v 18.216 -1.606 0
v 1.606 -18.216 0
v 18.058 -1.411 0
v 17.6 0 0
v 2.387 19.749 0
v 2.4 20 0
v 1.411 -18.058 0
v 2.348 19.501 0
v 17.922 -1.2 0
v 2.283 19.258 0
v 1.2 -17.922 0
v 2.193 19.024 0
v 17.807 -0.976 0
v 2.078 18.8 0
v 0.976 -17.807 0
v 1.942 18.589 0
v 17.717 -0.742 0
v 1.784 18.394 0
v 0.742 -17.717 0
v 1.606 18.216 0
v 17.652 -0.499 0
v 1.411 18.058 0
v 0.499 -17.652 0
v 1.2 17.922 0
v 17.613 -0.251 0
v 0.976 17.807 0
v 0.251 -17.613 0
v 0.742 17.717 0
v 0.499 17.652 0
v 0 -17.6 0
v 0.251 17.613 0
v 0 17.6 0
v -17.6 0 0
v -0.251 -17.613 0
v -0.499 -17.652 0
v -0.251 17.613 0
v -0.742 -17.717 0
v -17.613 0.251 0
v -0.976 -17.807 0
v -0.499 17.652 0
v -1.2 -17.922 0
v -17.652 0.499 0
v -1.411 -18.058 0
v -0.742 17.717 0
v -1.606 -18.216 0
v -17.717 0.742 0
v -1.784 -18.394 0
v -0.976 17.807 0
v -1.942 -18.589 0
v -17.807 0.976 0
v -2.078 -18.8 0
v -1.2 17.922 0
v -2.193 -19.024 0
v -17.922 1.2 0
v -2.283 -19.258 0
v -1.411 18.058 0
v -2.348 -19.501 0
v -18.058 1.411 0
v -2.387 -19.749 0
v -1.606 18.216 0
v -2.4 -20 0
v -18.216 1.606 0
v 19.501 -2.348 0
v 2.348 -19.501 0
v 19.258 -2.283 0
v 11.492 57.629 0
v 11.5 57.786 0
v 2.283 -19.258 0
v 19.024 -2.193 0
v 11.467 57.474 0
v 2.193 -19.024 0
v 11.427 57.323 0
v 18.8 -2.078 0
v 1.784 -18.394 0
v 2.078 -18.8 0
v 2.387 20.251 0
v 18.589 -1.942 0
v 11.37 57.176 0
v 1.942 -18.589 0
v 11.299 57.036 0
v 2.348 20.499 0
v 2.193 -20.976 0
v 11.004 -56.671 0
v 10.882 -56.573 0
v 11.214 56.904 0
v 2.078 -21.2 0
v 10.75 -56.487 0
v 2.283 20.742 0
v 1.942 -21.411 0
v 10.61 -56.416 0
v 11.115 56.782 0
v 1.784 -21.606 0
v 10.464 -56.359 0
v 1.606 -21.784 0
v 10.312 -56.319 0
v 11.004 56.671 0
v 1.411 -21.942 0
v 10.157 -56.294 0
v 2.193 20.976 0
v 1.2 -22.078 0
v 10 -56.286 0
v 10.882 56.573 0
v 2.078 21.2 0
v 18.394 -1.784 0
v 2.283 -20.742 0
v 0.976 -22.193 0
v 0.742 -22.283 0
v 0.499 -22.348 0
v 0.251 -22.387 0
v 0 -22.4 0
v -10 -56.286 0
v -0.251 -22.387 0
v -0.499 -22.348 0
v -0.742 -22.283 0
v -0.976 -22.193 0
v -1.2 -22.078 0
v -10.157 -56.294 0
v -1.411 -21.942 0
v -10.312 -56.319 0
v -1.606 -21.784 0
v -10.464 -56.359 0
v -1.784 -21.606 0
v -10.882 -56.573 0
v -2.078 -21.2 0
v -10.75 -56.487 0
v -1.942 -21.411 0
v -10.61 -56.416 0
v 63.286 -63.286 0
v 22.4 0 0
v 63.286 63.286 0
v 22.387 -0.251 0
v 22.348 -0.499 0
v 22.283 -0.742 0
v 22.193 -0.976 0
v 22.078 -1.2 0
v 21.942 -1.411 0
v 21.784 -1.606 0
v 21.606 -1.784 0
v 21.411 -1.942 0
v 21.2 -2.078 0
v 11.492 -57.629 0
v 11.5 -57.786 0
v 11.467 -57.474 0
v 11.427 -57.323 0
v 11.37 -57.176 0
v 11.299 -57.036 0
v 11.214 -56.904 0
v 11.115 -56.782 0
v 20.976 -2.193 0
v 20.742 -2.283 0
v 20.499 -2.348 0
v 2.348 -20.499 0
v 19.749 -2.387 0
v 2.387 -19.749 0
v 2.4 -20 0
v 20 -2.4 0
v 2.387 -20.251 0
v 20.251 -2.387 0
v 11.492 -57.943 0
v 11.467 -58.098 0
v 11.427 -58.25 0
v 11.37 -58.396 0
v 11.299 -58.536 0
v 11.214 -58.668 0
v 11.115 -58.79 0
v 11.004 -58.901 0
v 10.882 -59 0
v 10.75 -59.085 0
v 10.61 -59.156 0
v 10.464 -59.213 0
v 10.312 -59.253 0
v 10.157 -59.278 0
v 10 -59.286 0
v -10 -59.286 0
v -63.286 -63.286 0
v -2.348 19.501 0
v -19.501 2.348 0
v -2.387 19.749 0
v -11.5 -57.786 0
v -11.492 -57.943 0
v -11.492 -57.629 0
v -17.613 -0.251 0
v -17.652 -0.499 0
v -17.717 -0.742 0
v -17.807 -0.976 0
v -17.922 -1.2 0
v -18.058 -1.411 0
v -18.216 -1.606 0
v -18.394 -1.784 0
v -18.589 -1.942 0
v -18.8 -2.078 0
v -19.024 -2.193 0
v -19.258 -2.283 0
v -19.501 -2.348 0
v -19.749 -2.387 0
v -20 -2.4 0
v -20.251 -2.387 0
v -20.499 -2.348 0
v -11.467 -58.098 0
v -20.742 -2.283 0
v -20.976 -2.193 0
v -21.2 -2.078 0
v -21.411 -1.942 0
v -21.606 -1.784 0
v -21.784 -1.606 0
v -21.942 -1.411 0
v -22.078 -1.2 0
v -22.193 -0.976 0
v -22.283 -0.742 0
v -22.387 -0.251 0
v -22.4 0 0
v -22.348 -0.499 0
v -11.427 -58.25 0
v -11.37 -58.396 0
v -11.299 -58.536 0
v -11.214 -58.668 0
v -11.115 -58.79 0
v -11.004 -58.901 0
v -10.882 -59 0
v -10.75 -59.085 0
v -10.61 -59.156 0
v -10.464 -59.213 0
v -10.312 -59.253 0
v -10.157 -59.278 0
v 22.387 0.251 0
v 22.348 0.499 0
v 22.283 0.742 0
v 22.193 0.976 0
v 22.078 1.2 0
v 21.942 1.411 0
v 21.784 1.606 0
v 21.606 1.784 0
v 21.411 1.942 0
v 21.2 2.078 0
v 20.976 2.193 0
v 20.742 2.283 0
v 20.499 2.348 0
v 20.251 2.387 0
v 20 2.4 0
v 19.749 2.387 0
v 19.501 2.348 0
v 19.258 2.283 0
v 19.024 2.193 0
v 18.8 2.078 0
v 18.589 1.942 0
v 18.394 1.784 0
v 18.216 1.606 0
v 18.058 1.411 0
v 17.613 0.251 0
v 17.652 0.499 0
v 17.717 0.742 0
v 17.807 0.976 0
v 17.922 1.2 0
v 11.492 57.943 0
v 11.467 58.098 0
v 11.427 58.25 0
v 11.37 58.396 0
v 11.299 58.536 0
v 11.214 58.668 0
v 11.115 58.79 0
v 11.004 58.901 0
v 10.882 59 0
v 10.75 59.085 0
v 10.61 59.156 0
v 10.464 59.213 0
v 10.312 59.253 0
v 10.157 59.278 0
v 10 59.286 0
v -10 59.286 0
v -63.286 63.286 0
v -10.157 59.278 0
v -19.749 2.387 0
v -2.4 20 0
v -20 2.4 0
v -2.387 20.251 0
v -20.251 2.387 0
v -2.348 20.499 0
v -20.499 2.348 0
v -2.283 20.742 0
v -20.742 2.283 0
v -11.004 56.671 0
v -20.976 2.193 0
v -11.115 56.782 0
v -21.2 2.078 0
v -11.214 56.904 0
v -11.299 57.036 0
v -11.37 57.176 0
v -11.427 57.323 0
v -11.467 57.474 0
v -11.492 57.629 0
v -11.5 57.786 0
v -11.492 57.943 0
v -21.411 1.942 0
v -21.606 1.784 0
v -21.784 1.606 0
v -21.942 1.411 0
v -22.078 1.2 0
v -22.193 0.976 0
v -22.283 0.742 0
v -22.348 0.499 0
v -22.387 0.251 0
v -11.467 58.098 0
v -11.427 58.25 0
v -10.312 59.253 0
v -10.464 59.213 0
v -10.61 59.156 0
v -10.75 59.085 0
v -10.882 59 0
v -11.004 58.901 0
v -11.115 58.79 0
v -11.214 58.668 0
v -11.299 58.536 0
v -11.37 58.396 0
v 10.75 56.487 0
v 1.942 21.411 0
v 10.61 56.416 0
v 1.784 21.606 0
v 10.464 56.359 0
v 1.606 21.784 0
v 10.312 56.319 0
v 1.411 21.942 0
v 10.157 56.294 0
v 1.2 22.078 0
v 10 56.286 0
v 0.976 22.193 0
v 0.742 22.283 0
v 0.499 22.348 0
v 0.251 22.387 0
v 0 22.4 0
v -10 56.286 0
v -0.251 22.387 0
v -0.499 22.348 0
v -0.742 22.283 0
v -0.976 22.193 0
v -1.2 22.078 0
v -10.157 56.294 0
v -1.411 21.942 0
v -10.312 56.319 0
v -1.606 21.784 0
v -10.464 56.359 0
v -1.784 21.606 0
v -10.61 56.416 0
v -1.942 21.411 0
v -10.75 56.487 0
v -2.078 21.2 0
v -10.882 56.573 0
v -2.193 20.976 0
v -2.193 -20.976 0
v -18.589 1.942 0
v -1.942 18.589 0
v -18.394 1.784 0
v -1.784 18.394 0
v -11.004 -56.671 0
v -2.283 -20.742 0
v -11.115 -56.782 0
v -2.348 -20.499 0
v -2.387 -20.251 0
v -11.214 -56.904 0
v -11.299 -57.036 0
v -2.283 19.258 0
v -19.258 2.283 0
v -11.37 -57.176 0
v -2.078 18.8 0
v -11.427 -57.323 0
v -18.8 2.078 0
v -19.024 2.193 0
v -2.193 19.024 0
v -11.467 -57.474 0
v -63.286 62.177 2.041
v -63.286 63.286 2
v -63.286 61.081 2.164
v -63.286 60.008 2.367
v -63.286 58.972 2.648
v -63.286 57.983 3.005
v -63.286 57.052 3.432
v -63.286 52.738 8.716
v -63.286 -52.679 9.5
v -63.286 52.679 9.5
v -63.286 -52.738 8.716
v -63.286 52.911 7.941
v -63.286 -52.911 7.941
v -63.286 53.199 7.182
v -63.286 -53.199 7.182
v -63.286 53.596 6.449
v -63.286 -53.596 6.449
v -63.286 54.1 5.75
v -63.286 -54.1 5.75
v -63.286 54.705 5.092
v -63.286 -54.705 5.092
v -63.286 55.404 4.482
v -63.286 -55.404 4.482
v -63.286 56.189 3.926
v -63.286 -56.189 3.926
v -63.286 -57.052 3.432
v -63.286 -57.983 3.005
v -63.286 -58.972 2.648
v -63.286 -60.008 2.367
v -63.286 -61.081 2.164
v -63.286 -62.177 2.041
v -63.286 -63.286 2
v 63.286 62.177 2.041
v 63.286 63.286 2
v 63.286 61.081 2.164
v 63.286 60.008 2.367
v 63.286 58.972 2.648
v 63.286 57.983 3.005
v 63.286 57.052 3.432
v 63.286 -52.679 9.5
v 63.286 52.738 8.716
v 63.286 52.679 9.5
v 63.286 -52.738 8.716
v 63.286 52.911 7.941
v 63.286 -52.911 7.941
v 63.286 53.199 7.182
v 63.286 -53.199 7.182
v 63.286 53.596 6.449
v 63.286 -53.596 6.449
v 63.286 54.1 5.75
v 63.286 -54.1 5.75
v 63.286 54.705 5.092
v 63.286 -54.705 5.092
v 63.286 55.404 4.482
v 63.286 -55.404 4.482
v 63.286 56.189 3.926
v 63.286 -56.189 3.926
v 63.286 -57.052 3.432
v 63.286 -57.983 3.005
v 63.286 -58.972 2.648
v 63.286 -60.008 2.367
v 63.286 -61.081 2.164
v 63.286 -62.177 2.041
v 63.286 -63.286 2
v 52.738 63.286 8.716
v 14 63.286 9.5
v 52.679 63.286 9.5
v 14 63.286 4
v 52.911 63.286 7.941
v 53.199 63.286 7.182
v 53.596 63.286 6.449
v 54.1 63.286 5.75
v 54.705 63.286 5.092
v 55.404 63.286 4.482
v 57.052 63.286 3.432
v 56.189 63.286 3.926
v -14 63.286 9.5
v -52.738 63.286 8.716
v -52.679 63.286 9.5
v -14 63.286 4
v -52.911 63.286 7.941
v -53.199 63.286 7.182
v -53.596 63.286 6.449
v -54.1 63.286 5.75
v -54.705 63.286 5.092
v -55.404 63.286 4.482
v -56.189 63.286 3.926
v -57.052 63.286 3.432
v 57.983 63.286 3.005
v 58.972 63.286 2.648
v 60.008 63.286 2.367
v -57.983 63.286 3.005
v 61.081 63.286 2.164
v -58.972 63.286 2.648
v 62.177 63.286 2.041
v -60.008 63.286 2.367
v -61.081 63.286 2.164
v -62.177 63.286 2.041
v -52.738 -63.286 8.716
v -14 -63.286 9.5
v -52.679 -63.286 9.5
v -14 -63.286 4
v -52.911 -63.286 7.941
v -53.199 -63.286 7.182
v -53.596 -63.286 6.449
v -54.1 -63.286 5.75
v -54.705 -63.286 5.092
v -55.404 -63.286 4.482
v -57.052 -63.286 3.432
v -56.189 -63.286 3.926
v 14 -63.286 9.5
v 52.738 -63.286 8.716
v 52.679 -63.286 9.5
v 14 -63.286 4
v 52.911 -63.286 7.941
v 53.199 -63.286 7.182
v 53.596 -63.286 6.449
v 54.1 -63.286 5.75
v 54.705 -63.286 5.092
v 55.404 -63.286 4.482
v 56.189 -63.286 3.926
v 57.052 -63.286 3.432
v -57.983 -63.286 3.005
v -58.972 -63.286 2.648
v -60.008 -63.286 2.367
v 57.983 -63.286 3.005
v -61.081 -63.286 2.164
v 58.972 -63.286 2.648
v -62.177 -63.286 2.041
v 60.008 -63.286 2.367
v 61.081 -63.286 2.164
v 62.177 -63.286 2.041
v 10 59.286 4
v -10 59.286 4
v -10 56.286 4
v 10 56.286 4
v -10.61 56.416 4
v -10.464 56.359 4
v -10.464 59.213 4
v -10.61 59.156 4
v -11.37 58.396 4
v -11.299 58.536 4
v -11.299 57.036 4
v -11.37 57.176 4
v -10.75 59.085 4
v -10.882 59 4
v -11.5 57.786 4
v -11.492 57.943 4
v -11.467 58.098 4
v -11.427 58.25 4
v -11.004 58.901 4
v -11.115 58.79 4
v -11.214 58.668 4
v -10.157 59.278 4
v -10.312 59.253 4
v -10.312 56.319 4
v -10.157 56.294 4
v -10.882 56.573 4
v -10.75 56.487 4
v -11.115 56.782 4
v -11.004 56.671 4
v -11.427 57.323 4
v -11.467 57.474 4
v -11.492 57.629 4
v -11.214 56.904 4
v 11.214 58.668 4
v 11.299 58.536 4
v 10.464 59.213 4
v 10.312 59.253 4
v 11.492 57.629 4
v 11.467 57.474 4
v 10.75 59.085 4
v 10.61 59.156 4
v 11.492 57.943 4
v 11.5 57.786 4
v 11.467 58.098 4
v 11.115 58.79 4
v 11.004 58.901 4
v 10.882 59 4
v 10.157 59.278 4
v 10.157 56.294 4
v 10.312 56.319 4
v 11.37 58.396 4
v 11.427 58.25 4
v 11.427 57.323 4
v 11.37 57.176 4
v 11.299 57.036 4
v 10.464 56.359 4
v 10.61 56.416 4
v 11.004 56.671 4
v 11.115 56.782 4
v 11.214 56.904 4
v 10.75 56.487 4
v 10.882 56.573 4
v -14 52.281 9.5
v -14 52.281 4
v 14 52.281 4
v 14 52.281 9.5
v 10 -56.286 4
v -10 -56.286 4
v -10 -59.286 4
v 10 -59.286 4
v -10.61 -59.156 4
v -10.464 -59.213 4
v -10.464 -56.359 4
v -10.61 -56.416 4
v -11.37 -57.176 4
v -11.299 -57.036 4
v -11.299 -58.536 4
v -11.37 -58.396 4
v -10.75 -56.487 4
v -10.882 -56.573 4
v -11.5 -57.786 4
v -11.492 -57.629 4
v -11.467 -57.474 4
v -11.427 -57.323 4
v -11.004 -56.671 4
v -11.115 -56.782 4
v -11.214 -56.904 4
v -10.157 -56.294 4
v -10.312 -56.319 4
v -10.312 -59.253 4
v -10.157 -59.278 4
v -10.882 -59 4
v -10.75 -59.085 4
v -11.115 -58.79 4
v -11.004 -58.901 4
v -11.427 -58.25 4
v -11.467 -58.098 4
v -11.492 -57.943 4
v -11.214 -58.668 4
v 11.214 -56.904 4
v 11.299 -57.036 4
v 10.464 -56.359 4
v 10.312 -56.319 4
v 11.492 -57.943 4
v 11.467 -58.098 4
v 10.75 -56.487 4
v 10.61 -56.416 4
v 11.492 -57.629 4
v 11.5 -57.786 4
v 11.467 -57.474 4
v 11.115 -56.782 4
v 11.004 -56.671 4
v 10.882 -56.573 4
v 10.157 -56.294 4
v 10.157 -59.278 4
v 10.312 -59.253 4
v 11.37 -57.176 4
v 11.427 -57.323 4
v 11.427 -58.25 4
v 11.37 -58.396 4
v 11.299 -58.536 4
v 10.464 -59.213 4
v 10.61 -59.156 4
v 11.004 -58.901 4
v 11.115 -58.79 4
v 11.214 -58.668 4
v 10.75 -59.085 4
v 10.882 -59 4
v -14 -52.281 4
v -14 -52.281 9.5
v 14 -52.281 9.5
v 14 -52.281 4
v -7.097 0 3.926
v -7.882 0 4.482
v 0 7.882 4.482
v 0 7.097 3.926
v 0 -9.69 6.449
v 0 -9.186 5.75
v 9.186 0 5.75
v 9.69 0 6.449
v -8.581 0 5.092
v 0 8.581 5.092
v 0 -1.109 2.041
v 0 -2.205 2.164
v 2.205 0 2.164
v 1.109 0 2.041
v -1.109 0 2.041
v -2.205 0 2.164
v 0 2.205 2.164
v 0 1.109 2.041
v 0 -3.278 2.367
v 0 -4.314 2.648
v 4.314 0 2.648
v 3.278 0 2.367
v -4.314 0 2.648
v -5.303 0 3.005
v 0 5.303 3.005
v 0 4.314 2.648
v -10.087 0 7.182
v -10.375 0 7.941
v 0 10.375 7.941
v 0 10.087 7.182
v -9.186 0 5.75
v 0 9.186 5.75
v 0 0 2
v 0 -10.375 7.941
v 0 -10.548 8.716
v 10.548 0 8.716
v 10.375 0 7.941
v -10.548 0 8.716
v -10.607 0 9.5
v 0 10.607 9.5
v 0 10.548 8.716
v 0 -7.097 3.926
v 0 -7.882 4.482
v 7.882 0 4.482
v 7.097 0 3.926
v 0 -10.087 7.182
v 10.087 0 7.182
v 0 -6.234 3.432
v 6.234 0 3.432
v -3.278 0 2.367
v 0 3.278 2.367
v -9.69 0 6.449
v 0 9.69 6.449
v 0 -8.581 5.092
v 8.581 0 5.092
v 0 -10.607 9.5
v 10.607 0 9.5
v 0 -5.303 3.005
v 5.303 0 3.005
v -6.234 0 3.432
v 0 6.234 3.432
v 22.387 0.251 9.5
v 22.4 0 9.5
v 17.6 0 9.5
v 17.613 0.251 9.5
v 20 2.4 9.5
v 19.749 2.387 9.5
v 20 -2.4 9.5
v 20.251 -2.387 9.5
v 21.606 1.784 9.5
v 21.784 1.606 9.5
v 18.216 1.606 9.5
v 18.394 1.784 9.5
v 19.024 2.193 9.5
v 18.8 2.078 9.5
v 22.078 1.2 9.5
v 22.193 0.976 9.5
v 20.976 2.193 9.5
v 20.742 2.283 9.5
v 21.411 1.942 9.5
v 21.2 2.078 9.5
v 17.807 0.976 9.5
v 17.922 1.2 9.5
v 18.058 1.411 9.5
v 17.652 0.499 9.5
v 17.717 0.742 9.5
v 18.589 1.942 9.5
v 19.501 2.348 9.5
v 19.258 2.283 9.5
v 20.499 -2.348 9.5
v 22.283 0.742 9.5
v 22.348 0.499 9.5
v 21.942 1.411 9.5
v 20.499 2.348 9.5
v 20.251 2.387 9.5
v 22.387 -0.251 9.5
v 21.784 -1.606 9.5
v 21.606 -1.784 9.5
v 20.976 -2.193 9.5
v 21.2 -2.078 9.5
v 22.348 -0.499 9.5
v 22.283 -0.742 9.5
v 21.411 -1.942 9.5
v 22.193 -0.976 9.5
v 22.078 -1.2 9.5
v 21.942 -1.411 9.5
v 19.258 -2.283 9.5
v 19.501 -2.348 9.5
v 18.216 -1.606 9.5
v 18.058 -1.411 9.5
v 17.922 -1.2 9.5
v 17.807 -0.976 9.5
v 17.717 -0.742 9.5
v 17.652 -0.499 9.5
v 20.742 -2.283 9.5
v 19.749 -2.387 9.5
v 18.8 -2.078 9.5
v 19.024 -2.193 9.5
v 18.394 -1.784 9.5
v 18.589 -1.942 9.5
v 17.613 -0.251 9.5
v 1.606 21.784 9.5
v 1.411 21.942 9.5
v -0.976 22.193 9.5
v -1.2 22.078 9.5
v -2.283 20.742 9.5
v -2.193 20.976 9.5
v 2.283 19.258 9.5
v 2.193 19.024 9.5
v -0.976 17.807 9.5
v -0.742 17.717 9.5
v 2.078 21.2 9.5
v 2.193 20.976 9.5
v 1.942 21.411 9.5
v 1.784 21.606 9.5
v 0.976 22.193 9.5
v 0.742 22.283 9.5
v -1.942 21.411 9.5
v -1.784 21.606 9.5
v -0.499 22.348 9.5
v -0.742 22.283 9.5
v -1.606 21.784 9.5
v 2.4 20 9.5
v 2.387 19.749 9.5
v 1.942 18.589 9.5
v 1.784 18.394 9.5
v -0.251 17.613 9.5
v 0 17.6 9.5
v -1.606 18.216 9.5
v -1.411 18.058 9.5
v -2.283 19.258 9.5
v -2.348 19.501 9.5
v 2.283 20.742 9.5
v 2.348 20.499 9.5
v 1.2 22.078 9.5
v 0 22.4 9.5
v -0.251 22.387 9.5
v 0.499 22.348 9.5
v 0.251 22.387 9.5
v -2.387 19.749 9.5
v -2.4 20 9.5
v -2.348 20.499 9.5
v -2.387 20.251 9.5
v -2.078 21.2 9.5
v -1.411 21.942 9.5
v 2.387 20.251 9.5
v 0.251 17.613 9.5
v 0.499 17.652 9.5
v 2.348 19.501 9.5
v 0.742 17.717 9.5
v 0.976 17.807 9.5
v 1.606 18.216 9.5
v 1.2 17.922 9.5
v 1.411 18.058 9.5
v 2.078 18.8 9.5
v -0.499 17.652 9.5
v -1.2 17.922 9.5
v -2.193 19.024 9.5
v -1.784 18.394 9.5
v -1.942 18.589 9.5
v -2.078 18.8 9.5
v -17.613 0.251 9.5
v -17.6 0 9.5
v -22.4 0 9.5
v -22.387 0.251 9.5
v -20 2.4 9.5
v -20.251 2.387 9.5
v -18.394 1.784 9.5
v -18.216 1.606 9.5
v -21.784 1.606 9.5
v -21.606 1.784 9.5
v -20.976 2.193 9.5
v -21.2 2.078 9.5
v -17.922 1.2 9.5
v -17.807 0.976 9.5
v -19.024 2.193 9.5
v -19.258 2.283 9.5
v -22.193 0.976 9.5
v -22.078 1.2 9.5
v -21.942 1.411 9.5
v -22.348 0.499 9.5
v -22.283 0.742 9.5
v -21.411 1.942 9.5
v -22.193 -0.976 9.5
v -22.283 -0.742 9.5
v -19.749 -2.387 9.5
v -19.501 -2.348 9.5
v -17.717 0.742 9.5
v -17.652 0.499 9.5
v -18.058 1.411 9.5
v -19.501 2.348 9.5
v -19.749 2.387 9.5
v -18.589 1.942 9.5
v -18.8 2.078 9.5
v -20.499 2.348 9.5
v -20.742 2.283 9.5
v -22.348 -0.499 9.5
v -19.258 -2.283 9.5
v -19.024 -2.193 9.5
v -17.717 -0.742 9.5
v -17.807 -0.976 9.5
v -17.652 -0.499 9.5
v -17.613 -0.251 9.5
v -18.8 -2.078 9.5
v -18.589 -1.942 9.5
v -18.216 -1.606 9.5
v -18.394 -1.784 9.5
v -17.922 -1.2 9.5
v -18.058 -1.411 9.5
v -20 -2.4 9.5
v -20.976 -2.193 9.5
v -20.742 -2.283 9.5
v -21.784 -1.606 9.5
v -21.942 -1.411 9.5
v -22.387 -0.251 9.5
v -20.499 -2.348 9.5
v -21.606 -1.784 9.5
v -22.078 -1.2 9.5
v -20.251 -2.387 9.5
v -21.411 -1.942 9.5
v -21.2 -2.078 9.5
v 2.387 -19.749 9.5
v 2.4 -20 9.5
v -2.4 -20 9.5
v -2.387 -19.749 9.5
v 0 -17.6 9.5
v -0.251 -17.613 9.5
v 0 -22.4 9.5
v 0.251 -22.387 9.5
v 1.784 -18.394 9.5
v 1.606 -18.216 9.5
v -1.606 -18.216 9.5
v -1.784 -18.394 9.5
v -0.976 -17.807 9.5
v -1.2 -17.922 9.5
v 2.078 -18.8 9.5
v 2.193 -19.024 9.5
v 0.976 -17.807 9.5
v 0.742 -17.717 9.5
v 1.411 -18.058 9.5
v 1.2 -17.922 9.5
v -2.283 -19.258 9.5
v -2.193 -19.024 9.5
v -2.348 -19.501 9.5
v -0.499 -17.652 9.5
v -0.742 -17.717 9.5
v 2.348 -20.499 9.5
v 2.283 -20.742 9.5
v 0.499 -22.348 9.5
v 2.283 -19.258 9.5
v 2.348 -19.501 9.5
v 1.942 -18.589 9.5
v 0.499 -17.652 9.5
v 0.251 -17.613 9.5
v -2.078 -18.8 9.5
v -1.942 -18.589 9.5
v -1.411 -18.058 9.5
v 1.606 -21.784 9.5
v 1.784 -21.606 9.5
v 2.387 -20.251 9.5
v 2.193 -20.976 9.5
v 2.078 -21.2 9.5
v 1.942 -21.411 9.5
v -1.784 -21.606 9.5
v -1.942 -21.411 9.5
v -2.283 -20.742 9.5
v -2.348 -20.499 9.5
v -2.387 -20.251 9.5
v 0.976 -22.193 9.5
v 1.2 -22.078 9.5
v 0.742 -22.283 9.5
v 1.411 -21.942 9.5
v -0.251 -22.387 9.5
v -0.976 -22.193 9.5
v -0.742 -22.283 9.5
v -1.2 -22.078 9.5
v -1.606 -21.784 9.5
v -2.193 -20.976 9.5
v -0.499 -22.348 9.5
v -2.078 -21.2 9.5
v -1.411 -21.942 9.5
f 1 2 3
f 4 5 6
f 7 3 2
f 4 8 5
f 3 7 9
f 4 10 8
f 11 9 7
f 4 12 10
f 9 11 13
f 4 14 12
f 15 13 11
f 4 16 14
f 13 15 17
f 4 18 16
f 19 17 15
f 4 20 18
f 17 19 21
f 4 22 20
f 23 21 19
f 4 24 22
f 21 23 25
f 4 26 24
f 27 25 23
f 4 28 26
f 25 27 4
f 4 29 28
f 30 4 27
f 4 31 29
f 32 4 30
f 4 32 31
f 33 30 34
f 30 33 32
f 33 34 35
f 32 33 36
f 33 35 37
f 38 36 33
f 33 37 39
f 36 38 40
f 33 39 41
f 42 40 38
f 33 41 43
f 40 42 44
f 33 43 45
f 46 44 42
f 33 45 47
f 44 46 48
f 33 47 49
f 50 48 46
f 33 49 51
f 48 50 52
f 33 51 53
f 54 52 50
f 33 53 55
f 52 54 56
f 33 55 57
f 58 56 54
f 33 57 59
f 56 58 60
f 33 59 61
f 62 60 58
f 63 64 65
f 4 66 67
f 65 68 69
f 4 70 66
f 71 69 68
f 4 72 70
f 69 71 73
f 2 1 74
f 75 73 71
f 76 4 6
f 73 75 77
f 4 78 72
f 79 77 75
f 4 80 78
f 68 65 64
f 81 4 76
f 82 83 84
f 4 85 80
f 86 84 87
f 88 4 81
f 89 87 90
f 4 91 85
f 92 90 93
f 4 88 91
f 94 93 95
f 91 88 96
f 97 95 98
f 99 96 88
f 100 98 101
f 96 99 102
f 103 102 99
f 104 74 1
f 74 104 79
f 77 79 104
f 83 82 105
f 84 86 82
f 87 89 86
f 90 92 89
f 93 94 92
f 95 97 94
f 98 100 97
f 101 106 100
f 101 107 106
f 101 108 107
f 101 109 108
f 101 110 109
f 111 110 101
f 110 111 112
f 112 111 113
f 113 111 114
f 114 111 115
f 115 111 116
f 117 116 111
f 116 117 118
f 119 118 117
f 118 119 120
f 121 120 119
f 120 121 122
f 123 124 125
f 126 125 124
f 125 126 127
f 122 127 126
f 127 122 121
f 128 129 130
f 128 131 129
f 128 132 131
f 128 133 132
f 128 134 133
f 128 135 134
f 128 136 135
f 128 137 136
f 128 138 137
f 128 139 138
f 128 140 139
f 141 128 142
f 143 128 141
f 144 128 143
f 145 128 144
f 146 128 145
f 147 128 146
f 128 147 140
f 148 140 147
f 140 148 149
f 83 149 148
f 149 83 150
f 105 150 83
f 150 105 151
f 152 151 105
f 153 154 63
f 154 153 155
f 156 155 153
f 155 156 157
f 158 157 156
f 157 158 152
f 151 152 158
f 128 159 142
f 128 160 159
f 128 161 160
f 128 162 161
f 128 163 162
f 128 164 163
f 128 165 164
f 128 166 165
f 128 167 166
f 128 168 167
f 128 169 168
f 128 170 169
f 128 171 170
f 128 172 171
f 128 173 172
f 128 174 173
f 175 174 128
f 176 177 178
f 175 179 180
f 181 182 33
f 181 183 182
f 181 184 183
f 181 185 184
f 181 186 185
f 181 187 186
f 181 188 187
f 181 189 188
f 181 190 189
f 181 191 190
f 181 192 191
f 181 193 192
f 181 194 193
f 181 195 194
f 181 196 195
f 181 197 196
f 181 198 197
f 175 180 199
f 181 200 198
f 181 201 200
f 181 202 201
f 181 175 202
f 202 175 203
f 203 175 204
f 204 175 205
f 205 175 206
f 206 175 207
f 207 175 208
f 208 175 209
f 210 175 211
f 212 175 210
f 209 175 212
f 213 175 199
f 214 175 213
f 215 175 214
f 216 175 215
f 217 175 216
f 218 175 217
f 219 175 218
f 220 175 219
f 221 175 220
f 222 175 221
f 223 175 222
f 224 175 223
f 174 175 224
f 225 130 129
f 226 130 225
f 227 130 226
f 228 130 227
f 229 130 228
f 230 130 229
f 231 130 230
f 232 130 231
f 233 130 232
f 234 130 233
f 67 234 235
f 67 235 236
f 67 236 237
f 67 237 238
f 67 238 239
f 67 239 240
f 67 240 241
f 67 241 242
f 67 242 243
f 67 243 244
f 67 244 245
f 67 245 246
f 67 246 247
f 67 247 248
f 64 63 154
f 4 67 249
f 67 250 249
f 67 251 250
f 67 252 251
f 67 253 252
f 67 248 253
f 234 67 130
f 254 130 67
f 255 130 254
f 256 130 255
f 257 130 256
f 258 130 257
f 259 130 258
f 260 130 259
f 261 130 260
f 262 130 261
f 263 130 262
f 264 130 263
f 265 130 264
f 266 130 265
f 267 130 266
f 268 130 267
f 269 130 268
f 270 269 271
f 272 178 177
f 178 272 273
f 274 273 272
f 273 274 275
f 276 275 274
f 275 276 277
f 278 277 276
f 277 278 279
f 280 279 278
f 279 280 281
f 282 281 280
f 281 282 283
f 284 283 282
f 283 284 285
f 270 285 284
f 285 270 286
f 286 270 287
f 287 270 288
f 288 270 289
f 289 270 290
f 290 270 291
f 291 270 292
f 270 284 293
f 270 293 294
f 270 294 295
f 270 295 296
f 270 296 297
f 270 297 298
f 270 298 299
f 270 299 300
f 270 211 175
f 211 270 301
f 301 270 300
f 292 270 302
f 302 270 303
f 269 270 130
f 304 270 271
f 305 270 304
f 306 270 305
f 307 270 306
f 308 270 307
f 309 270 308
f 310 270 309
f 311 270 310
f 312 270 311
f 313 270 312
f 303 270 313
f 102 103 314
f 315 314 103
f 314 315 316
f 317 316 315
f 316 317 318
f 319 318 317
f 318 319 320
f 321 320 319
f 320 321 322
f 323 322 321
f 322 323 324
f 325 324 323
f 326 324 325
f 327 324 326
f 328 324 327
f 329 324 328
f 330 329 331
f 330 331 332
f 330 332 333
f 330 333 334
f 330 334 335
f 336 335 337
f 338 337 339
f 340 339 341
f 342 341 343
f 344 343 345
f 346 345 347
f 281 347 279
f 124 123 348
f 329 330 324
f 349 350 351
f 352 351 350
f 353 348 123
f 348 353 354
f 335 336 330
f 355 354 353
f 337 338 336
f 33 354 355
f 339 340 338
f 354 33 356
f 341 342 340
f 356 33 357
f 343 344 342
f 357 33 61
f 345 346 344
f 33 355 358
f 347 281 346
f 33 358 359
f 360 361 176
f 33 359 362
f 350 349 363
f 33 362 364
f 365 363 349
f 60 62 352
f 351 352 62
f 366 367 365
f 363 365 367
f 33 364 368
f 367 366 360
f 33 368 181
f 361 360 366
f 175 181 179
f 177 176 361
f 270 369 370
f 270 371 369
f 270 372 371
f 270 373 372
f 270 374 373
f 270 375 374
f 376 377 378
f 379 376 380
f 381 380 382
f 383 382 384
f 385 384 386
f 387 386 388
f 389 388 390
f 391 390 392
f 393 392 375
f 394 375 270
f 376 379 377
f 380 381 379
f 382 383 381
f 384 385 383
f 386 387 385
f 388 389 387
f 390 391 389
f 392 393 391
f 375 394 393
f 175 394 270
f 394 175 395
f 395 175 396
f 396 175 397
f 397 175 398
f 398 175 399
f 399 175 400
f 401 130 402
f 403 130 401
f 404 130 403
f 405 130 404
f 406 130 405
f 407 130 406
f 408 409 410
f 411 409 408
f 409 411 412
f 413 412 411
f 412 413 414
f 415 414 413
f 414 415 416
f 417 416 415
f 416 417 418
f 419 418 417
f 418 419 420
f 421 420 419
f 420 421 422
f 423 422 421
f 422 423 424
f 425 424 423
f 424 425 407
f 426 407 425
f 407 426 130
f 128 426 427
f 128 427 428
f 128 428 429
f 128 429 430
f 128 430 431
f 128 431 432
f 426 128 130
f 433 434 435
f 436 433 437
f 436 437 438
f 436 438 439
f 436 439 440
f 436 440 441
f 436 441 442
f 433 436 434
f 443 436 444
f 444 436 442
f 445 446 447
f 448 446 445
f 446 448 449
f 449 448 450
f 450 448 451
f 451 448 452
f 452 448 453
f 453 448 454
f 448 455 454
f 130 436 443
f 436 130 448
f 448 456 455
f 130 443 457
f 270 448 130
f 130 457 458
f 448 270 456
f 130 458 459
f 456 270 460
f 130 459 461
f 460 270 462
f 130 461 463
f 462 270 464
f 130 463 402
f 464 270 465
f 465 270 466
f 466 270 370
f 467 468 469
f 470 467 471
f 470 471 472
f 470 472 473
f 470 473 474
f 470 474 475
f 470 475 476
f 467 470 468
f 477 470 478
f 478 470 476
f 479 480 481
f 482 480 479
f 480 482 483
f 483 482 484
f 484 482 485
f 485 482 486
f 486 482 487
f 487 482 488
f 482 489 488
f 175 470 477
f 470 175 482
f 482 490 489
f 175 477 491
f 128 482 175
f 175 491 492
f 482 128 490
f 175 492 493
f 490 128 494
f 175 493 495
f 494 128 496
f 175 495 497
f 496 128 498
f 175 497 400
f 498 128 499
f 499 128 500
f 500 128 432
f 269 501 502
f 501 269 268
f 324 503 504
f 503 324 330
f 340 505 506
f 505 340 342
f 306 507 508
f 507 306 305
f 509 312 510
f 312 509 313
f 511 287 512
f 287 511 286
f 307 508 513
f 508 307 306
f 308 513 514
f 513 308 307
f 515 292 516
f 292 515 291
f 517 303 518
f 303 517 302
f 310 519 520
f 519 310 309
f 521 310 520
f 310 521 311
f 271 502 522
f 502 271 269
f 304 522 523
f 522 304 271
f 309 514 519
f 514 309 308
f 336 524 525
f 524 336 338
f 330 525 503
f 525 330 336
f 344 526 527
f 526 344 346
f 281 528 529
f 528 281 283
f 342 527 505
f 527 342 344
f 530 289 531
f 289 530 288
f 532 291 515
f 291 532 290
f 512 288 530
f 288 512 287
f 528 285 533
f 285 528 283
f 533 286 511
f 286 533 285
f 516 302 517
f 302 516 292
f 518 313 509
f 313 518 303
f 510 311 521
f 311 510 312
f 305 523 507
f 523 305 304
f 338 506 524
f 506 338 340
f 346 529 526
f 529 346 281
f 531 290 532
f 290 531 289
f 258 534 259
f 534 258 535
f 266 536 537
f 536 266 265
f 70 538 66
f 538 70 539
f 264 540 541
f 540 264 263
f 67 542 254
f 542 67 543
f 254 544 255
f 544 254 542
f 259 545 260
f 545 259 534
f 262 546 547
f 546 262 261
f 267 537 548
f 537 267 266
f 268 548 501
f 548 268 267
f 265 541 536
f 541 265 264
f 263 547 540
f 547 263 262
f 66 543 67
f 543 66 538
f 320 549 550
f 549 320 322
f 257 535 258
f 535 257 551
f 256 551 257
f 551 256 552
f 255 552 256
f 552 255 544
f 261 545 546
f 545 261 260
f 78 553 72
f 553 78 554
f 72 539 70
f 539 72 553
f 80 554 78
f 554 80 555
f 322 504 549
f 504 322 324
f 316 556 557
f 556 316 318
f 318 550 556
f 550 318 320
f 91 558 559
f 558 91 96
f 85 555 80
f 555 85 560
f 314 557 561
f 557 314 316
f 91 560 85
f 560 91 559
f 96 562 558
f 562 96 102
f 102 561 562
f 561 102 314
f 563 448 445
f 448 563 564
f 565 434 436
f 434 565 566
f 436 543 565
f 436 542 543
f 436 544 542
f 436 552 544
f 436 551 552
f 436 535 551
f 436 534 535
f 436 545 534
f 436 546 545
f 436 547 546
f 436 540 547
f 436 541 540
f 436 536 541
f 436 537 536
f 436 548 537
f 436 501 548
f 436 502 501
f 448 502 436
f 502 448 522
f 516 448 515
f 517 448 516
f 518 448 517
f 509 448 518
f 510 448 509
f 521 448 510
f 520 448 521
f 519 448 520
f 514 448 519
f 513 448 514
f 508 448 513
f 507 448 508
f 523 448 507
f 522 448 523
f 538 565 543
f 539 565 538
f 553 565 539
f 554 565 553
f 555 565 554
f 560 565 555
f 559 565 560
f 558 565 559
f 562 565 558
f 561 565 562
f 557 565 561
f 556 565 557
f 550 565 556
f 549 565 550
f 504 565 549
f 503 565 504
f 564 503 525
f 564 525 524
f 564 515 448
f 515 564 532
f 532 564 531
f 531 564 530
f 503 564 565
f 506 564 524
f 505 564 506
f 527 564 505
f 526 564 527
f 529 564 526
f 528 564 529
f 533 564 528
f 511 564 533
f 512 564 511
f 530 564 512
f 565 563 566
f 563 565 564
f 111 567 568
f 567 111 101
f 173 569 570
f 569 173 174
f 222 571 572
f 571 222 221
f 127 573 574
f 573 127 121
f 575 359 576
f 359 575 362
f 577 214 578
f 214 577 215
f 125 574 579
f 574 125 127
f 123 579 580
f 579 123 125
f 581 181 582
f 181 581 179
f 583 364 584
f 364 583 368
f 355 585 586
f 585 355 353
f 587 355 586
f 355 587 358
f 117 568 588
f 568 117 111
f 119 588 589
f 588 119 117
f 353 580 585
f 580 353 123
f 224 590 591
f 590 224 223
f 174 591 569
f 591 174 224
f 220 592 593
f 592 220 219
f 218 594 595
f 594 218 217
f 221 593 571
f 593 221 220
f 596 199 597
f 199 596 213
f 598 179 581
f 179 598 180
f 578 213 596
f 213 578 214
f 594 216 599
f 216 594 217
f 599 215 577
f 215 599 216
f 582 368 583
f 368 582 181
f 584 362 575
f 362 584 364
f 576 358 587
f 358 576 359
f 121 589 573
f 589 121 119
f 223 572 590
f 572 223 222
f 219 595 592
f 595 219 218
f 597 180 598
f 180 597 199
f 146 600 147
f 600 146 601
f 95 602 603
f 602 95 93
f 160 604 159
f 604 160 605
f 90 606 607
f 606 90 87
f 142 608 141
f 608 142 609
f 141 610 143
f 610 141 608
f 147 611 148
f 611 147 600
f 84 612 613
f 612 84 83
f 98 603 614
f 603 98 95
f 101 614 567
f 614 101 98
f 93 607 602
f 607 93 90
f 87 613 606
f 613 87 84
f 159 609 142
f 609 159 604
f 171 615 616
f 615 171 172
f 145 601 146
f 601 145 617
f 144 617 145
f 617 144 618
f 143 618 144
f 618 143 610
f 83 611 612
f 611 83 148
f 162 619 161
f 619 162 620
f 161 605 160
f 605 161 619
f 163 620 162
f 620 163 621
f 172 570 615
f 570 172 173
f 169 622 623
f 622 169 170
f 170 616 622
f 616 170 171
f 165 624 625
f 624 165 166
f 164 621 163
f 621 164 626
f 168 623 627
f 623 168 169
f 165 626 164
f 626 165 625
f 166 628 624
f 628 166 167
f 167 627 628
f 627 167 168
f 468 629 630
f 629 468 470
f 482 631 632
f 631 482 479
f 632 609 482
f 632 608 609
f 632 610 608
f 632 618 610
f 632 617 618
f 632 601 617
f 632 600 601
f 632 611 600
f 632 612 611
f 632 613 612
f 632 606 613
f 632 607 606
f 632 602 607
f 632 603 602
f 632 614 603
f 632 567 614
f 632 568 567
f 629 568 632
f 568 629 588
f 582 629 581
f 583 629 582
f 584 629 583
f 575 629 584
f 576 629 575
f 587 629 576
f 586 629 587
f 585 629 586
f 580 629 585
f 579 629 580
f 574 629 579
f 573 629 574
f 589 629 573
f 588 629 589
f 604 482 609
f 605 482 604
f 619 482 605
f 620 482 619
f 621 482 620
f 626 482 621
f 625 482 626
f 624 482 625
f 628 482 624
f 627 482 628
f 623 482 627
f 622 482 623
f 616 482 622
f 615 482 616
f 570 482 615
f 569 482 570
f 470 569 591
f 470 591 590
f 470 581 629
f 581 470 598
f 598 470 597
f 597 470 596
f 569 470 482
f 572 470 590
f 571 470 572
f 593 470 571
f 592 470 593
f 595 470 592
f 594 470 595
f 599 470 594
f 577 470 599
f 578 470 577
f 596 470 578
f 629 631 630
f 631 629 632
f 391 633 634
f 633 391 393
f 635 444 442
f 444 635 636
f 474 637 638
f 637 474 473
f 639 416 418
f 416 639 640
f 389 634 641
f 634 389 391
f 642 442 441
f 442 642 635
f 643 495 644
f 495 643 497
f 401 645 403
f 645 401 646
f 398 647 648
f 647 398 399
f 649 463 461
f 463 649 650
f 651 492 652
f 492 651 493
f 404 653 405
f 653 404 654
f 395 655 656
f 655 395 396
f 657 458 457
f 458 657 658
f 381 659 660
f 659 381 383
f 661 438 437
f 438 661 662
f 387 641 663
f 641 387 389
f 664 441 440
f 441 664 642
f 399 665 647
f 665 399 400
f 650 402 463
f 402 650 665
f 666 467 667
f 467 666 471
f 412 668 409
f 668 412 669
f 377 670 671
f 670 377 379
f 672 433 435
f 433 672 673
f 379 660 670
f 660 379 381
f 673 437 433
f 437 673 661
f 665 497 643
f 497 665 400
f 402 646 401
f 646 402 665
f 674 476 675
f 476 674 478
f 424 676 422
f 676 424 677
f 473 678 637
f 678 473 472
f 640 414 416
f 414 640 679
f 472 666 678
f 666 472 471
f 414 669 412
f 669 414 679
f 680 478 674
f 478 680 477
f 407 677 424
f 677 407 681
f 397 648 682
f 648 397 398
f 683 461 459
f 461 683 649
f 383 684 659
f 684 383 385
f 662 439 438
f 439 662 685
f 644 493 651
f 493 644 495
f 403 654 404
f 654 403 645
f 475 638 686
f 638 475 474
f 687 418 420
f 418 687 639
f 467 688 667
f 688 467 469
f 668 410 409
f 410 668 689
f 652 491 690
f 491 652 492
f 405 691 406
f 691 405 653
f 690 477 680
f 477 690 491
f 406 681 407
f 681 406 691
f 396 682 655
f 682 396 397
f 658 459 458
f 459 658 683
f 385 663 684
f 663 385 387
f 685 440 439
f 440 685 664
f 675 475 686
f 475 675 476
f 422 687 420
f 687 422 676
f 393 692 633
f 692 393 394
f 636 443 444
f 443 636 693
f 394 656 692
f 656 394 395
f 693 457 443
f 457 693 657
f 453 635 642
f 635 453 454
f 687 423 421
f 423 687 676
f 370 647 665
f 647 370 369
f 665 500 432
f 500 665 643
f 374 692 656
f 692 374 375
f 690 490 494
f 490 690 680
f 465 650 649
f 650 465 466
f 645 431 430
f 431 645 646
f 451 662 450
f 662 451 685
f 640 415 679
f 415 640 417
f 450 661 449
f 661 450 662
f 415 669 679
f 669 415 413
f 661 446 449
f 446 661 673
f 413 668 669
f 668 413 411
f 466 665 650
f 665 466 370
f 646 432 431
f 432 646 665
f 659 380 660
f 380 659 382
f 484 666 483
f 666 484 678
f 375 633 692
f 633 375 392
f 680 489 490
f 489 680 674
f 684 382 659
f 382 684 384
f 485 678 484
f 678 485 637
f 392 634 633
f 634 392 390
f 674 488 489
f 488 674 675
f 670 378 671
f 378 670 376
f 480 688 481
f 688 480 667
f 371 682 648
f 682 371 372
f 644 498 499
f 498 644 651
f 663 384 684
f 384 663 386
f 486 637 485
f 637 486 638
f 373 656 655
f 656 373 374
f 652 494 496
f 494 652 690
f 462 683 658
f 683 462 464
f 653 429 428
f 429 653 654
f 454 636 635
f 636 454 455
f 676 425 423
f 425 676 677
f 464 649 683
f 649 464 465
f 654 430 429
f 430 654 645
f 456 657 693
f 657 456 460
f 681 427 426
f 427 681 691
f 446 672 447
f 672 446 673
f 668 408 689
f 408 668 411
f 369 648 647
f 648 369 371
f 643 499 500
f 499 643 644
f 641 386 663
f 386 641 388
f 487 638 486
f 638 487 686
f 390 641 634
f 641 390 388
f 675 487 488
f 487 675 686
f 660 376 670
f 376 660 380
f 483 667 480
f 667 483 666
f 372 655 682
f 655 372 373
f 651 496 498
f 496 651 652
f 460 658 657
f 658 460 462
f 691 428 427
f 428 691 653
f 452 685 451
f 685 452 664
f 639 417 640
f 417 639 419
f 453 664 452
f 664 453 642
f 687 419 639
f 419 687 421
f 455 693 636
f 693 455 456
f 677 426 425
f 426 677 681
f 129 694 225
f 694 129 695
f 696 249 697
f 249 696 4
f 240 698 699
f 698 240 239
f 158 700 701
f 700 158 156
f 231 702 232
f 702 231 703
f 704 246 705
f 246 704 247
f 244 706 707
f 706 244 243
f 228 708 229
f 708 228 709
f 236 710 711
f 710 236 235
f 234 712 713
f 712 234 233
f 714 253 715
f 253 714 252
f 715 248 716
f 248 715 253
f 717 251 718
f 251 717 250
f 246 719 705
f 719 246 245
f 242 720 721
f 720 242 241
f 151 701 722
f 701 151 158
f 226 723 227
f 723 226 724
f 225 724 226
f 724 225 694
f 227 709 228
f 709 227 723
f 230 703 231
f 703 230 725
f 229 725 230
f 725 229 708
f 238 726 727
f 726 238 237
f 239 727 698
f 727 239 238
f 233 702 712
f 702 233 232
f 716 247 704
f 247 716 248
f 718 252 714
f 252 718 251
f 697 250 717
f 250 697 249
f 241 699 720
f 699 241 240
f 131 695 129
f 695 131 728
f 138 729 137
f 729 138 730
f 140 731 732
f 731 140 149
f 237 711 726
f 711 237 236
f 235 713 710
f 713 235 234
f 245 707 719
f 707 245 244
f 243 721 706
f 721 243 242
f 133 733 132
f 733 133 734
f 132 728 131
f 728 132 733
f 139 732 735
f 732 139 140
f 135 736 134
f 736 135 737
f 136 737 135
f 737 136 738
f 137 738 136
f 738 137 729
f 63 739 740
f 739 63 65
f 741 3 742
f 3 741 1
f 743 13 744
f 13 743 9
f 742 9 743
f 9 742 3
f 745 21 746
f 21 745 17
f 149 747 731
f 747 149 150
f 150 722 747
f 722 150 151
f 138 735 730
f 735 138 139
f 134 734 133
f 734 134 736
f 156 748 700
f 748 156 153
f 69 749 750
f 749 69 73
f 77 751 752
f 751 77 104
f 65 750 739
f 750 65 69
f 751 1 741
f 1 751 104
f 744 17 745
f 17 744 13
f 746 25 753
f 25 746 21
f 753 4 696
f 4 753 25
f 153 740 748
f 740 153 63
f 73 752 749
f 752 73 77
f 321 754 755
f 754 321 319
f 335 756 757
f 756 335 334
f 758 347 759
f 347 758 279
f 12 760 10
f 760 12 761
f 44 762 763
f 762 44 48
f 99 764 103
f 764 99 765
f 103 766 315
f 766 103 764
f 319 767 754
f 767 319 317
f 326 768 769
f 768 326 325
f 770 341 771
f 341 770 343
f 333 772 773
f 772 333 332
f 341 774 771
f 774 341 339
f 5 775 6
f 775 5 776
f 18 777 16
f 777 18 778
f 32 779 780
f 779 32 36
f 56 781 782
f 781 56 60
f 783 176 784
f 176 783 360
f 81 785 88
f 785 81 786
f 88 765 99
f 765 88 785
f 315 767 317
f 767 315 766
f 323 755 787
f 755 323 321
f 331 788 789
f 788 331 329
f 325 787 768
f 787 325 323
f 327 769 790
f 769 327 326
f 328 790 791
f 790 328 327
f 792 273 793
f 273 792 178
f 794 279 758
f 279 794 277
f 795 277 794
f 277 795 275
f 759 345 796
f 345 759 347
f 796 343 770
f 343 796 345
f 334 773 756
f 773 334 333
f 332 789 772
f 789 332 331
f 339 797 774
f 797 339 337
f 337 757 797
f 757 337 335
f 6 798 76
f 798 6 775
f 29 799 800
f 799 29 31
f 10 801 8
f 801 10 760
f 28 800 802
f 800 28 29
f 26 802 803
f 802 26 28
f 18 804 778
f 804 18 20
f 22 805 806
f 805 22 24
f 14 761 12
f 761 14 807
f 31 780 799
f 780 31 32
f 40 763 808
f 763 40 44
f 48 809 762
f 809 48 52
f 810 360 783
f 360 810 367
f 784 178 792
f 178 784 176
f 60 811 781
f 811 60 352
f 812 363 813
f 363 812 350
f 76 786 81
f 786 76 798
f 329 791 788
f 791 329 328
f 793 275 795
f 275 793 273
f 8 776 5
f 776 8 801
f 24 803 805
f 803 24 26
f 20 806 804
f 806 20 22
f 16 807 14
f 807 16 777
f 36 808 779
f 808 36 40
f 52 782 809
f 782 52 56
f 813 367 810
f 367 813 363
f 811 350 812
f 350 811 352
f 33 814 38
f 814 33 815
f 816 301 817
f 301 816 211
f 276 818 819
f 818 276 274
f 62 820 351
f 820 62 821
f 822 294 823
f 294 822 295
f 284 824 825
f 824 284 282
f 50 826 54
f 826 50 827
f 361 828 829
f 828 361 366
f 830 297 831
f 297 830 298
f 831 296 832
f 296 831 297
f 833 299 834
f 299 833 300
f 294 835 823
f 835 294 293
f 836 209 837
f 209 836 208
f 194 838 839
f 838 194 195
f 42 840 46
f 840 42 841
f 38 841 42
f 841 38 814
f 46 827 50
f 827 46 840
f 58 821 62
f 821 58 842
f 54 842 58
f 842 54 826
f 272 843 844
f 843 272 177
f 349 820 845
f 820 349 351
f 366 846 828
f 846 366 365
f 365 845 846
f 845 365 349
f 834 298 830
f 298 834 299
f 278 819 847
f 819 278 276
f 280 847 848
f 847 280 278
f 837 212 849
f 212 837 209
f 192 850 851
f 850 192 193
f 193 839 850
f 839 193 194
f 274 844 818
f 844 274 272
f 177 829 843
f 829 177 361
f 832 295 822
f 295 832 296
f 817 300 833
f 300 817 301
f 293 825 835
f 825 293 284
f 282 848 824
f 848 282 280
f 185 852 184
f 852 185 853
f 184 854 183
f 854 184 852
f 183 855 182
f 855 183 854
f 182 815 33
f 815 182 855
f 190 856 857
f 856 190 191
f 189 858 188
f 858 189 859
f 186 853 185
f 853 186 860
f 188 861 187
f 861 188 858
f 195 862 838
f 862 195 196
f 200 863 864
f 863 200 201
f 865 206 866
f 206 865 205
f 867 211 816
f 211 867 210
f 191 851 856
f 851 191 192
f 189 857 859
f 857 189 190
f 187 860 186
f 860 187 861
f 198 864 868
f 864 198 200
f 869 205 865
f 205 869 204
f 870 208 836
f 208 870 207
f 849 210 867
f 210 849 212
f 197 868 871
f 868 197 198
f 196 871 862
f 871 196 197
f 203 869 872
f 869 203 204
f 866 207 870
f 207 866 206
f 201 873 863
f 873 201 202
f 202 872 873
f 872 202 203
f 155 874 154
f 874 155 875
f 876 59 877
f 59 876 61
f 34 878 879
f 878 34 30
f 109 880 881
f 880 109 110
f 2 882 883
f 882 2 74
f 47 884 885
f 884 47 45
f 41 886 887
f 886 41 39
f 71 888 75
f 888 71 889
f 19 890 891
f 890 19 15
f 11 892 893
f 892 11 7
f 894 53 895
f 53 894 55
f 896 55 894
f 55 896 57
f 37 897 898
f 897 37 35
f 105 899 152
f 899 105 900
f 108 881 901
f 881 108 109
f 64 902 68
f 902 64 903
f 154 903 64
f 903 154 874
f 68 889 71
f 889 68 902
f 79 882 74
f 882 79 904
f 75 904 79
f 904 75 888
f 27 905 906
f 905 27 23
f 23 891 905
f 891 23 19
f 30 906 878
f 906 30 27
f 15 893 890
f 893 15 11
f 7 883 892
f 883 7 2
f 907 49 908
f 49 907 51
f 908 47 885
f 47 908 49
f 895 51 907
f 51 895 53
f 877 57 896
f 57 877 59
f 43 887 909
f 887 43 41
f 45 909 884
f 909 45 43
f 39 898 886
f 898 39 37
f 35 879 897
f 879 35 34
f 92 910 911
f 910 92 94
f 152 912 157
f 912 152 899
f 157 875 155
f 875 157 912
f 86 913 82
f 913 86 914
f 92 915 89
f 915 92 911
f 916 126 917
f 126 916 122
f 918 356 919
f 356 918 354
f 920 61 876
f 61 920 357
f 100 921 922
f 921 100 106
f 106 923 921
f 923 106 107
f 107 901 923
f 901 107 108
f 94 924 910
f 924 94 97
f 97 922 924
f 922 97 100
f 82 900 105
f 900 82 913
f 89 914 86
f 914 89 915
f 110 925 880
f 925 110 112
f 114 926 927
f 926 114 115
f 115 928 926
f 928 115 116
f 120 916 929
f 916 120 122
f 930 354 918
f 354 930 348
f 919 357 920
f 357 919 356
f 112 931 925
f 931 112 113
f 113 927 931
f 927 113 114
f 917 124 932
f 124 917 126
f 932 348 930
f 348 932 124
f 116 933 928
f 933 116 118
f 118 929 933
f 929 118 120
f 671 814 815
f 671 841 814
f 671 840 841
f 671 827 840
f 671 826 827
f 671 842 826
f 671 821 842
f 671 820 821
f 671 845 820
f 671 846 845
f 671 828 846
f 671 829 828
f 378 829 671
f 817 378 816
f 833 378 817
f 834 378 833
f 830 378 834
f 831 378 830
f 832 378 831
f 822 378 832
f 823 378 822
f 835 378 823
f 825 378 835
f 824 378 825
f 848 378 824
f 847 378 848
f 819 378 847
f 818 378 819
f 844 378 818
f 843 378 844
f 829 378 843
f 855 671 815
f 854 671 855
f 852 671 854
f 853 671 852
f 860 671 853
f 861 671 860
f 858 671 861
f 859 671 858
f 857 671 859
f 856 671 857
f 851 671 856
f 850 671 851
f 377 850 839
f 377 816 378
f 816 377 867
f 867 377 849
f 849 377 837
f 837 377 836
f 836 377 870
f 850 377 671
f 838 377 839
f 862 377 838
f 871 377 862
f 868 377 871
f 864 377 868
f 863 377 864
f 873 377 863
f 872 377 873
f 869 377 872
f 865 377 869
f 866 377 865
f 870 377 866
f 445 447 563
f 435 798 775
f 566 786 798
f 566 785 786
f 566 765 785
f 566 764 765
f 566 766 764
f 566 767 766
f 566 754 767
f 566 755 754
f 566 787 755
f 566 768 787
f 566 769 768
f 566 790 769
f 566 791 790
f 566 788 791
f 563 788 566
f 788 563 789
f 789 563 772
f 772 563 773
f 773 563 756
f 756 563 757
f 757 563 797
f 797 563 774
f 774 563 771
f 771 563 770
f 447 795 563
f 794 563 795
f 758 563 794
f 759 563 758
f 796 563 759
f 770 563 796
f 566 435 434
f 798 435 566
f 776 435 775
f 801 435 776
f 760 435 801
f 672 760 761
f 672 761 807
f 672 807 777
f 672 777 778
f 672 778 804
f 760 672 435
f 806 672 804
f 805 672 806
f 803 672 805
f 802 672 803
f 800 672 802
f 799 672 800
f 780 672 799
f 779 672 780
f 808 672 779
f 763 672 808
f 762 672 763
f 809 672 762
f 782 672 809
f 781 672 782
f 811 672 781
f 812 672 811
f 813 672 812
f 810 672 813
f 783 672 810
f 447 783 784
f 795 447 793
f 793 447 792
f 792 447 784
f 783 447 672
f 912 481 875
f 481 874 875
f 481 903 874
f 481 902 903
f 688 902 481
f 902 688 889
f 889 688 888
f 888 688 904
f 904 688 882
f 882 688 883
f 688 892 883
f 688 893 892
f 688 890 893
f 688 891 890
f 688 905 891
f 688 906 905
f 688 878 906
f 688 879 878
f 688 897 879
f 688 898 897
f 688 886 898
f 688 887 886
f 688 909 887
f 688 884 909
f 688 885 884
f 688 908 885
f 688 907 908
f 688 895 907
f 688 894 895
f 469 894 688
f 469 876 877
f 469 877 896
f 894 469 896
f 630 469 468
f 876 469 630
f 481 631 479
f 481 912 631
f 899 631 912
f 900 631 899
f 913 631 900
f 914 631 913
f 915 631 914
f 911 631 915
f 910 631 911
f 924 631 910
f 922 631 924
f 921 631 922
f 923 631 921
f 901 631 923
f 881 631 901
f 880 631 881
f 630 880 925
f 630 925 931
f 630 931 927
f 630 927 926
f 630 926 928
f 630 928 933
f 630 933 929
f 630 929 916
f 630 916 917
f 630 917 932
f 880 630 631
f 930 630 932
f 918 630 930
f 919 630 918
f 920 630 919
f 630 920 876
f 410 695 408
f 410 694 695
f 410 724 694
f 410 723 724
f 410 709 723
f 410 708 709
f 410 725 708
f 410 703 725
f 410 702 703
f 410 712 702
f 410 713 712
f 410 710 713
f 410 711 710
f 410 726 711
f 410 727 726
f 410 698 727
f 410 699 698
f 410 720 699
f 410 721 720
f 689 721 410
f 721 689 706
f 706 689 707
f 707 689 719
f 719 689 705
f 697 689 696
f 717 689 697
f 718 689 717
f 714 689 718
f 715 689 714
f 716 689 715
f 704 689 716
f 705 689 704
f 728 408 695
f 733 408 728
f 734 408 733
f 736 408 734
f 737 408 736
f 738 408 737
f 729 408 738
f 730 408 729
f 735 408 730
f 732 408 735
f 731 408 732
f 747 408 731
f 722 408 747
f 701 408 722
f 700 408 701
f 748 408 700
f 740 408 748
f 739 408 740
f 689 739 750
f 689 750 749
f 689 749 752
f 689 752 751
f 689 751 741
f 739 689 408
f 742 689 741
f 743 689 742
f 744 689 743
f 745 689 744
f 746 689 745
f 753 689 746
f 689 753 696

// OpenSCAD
// Center cross for a drone frame

//print with 100% infill

//=======================================================================
// Config
//=======================================================================
//beam diameter
dia1=15;

//wall thickness main cross beam
wall=2; 

//socket depth for both axis
socket1=80;

//plate thickness
plate_h = 20;

//strap holder
strap_l=20; //set to 0 to not use straps
strap_w=3;
strap_edge = 4;

//=======================================================================

$fn=60; //number of fragments

tol=0.01;


plate_w = sqrt(2) * (socket1 + dia1/2 + wall);

difference() {

  union() {
    rotate([0,0,45]) Tube_add(2*socket1,dia1/2,2);
    rotate([0,0,-45]) Tube_add(2*socket1,dia1/2,wall);
    
    //plate
    translate([-plate_w/2,-plate_w/2,0]) cube([plate_w,plate_w,plate_h]);
  }
  rotate([0,0,45]) Tube_drill(2*socket1,dia1/2,2);
  rotate([0,0,-45]) Tube_drill(2*socket1,dia1/2,wall);
  
  //strap holes
  if(strap_l) {
    strap_offset = plate_w/2-strap_edge-strap_w/2;
    Strap_drill(strap_offset);
    Strap_drill(-strap_offset);
  }
  
  //motor M4xdia40 holes
  translate([20,0,0]) cylinder(h=1000,r=2.4,center=true);
  translate([0,20,0]) cylinder(h=1000,r=2.4,center=true);
  translate([-20,0,0]) cylinder(h=1000,r=2.4,center=true);
  translate([0,-20,0]) cylinder(h=1000,r=2.4,center=true);
  
  //keep bottom half only
  translate([-150,-150,dia1/2+wall]) cube([300,300,50]);
}







//Tube along x-axis in positive z
module Tube_add(h, r, wall) {
  translate([-h/2,0,r+wall]) rotate([0,90,0]) 
    //cylinder(h=h, r=r+wall);
    translate([-r-wall,-r-wall,0]) cube([2*(r+wall),2*(r+wall),h]);
}
module Tube_drill(h, r, wall) {
  translate([-500,0,r+wall]) rotate([0,90,0]) 
    cylinder(h=1000, r=r);
}
  
module Strap_drill(offset) {
  translate([0,offset,0]) union() {
    cube([strap_l,strap_w,1000],center=true);
    translate([-strap_l/2,0,0]) cylinder(h=1000,r=strap_w/2,center=true);
    translate([+strap_l/2,0,0]) cylinder(h=1000,r=strap_w/2,center=true);
    translate([0,0,500+strap_edge]) cube([strap_l+2*strap_edge,strap_w+2*strap_edge+tol,1000],center=true);
  }
}
